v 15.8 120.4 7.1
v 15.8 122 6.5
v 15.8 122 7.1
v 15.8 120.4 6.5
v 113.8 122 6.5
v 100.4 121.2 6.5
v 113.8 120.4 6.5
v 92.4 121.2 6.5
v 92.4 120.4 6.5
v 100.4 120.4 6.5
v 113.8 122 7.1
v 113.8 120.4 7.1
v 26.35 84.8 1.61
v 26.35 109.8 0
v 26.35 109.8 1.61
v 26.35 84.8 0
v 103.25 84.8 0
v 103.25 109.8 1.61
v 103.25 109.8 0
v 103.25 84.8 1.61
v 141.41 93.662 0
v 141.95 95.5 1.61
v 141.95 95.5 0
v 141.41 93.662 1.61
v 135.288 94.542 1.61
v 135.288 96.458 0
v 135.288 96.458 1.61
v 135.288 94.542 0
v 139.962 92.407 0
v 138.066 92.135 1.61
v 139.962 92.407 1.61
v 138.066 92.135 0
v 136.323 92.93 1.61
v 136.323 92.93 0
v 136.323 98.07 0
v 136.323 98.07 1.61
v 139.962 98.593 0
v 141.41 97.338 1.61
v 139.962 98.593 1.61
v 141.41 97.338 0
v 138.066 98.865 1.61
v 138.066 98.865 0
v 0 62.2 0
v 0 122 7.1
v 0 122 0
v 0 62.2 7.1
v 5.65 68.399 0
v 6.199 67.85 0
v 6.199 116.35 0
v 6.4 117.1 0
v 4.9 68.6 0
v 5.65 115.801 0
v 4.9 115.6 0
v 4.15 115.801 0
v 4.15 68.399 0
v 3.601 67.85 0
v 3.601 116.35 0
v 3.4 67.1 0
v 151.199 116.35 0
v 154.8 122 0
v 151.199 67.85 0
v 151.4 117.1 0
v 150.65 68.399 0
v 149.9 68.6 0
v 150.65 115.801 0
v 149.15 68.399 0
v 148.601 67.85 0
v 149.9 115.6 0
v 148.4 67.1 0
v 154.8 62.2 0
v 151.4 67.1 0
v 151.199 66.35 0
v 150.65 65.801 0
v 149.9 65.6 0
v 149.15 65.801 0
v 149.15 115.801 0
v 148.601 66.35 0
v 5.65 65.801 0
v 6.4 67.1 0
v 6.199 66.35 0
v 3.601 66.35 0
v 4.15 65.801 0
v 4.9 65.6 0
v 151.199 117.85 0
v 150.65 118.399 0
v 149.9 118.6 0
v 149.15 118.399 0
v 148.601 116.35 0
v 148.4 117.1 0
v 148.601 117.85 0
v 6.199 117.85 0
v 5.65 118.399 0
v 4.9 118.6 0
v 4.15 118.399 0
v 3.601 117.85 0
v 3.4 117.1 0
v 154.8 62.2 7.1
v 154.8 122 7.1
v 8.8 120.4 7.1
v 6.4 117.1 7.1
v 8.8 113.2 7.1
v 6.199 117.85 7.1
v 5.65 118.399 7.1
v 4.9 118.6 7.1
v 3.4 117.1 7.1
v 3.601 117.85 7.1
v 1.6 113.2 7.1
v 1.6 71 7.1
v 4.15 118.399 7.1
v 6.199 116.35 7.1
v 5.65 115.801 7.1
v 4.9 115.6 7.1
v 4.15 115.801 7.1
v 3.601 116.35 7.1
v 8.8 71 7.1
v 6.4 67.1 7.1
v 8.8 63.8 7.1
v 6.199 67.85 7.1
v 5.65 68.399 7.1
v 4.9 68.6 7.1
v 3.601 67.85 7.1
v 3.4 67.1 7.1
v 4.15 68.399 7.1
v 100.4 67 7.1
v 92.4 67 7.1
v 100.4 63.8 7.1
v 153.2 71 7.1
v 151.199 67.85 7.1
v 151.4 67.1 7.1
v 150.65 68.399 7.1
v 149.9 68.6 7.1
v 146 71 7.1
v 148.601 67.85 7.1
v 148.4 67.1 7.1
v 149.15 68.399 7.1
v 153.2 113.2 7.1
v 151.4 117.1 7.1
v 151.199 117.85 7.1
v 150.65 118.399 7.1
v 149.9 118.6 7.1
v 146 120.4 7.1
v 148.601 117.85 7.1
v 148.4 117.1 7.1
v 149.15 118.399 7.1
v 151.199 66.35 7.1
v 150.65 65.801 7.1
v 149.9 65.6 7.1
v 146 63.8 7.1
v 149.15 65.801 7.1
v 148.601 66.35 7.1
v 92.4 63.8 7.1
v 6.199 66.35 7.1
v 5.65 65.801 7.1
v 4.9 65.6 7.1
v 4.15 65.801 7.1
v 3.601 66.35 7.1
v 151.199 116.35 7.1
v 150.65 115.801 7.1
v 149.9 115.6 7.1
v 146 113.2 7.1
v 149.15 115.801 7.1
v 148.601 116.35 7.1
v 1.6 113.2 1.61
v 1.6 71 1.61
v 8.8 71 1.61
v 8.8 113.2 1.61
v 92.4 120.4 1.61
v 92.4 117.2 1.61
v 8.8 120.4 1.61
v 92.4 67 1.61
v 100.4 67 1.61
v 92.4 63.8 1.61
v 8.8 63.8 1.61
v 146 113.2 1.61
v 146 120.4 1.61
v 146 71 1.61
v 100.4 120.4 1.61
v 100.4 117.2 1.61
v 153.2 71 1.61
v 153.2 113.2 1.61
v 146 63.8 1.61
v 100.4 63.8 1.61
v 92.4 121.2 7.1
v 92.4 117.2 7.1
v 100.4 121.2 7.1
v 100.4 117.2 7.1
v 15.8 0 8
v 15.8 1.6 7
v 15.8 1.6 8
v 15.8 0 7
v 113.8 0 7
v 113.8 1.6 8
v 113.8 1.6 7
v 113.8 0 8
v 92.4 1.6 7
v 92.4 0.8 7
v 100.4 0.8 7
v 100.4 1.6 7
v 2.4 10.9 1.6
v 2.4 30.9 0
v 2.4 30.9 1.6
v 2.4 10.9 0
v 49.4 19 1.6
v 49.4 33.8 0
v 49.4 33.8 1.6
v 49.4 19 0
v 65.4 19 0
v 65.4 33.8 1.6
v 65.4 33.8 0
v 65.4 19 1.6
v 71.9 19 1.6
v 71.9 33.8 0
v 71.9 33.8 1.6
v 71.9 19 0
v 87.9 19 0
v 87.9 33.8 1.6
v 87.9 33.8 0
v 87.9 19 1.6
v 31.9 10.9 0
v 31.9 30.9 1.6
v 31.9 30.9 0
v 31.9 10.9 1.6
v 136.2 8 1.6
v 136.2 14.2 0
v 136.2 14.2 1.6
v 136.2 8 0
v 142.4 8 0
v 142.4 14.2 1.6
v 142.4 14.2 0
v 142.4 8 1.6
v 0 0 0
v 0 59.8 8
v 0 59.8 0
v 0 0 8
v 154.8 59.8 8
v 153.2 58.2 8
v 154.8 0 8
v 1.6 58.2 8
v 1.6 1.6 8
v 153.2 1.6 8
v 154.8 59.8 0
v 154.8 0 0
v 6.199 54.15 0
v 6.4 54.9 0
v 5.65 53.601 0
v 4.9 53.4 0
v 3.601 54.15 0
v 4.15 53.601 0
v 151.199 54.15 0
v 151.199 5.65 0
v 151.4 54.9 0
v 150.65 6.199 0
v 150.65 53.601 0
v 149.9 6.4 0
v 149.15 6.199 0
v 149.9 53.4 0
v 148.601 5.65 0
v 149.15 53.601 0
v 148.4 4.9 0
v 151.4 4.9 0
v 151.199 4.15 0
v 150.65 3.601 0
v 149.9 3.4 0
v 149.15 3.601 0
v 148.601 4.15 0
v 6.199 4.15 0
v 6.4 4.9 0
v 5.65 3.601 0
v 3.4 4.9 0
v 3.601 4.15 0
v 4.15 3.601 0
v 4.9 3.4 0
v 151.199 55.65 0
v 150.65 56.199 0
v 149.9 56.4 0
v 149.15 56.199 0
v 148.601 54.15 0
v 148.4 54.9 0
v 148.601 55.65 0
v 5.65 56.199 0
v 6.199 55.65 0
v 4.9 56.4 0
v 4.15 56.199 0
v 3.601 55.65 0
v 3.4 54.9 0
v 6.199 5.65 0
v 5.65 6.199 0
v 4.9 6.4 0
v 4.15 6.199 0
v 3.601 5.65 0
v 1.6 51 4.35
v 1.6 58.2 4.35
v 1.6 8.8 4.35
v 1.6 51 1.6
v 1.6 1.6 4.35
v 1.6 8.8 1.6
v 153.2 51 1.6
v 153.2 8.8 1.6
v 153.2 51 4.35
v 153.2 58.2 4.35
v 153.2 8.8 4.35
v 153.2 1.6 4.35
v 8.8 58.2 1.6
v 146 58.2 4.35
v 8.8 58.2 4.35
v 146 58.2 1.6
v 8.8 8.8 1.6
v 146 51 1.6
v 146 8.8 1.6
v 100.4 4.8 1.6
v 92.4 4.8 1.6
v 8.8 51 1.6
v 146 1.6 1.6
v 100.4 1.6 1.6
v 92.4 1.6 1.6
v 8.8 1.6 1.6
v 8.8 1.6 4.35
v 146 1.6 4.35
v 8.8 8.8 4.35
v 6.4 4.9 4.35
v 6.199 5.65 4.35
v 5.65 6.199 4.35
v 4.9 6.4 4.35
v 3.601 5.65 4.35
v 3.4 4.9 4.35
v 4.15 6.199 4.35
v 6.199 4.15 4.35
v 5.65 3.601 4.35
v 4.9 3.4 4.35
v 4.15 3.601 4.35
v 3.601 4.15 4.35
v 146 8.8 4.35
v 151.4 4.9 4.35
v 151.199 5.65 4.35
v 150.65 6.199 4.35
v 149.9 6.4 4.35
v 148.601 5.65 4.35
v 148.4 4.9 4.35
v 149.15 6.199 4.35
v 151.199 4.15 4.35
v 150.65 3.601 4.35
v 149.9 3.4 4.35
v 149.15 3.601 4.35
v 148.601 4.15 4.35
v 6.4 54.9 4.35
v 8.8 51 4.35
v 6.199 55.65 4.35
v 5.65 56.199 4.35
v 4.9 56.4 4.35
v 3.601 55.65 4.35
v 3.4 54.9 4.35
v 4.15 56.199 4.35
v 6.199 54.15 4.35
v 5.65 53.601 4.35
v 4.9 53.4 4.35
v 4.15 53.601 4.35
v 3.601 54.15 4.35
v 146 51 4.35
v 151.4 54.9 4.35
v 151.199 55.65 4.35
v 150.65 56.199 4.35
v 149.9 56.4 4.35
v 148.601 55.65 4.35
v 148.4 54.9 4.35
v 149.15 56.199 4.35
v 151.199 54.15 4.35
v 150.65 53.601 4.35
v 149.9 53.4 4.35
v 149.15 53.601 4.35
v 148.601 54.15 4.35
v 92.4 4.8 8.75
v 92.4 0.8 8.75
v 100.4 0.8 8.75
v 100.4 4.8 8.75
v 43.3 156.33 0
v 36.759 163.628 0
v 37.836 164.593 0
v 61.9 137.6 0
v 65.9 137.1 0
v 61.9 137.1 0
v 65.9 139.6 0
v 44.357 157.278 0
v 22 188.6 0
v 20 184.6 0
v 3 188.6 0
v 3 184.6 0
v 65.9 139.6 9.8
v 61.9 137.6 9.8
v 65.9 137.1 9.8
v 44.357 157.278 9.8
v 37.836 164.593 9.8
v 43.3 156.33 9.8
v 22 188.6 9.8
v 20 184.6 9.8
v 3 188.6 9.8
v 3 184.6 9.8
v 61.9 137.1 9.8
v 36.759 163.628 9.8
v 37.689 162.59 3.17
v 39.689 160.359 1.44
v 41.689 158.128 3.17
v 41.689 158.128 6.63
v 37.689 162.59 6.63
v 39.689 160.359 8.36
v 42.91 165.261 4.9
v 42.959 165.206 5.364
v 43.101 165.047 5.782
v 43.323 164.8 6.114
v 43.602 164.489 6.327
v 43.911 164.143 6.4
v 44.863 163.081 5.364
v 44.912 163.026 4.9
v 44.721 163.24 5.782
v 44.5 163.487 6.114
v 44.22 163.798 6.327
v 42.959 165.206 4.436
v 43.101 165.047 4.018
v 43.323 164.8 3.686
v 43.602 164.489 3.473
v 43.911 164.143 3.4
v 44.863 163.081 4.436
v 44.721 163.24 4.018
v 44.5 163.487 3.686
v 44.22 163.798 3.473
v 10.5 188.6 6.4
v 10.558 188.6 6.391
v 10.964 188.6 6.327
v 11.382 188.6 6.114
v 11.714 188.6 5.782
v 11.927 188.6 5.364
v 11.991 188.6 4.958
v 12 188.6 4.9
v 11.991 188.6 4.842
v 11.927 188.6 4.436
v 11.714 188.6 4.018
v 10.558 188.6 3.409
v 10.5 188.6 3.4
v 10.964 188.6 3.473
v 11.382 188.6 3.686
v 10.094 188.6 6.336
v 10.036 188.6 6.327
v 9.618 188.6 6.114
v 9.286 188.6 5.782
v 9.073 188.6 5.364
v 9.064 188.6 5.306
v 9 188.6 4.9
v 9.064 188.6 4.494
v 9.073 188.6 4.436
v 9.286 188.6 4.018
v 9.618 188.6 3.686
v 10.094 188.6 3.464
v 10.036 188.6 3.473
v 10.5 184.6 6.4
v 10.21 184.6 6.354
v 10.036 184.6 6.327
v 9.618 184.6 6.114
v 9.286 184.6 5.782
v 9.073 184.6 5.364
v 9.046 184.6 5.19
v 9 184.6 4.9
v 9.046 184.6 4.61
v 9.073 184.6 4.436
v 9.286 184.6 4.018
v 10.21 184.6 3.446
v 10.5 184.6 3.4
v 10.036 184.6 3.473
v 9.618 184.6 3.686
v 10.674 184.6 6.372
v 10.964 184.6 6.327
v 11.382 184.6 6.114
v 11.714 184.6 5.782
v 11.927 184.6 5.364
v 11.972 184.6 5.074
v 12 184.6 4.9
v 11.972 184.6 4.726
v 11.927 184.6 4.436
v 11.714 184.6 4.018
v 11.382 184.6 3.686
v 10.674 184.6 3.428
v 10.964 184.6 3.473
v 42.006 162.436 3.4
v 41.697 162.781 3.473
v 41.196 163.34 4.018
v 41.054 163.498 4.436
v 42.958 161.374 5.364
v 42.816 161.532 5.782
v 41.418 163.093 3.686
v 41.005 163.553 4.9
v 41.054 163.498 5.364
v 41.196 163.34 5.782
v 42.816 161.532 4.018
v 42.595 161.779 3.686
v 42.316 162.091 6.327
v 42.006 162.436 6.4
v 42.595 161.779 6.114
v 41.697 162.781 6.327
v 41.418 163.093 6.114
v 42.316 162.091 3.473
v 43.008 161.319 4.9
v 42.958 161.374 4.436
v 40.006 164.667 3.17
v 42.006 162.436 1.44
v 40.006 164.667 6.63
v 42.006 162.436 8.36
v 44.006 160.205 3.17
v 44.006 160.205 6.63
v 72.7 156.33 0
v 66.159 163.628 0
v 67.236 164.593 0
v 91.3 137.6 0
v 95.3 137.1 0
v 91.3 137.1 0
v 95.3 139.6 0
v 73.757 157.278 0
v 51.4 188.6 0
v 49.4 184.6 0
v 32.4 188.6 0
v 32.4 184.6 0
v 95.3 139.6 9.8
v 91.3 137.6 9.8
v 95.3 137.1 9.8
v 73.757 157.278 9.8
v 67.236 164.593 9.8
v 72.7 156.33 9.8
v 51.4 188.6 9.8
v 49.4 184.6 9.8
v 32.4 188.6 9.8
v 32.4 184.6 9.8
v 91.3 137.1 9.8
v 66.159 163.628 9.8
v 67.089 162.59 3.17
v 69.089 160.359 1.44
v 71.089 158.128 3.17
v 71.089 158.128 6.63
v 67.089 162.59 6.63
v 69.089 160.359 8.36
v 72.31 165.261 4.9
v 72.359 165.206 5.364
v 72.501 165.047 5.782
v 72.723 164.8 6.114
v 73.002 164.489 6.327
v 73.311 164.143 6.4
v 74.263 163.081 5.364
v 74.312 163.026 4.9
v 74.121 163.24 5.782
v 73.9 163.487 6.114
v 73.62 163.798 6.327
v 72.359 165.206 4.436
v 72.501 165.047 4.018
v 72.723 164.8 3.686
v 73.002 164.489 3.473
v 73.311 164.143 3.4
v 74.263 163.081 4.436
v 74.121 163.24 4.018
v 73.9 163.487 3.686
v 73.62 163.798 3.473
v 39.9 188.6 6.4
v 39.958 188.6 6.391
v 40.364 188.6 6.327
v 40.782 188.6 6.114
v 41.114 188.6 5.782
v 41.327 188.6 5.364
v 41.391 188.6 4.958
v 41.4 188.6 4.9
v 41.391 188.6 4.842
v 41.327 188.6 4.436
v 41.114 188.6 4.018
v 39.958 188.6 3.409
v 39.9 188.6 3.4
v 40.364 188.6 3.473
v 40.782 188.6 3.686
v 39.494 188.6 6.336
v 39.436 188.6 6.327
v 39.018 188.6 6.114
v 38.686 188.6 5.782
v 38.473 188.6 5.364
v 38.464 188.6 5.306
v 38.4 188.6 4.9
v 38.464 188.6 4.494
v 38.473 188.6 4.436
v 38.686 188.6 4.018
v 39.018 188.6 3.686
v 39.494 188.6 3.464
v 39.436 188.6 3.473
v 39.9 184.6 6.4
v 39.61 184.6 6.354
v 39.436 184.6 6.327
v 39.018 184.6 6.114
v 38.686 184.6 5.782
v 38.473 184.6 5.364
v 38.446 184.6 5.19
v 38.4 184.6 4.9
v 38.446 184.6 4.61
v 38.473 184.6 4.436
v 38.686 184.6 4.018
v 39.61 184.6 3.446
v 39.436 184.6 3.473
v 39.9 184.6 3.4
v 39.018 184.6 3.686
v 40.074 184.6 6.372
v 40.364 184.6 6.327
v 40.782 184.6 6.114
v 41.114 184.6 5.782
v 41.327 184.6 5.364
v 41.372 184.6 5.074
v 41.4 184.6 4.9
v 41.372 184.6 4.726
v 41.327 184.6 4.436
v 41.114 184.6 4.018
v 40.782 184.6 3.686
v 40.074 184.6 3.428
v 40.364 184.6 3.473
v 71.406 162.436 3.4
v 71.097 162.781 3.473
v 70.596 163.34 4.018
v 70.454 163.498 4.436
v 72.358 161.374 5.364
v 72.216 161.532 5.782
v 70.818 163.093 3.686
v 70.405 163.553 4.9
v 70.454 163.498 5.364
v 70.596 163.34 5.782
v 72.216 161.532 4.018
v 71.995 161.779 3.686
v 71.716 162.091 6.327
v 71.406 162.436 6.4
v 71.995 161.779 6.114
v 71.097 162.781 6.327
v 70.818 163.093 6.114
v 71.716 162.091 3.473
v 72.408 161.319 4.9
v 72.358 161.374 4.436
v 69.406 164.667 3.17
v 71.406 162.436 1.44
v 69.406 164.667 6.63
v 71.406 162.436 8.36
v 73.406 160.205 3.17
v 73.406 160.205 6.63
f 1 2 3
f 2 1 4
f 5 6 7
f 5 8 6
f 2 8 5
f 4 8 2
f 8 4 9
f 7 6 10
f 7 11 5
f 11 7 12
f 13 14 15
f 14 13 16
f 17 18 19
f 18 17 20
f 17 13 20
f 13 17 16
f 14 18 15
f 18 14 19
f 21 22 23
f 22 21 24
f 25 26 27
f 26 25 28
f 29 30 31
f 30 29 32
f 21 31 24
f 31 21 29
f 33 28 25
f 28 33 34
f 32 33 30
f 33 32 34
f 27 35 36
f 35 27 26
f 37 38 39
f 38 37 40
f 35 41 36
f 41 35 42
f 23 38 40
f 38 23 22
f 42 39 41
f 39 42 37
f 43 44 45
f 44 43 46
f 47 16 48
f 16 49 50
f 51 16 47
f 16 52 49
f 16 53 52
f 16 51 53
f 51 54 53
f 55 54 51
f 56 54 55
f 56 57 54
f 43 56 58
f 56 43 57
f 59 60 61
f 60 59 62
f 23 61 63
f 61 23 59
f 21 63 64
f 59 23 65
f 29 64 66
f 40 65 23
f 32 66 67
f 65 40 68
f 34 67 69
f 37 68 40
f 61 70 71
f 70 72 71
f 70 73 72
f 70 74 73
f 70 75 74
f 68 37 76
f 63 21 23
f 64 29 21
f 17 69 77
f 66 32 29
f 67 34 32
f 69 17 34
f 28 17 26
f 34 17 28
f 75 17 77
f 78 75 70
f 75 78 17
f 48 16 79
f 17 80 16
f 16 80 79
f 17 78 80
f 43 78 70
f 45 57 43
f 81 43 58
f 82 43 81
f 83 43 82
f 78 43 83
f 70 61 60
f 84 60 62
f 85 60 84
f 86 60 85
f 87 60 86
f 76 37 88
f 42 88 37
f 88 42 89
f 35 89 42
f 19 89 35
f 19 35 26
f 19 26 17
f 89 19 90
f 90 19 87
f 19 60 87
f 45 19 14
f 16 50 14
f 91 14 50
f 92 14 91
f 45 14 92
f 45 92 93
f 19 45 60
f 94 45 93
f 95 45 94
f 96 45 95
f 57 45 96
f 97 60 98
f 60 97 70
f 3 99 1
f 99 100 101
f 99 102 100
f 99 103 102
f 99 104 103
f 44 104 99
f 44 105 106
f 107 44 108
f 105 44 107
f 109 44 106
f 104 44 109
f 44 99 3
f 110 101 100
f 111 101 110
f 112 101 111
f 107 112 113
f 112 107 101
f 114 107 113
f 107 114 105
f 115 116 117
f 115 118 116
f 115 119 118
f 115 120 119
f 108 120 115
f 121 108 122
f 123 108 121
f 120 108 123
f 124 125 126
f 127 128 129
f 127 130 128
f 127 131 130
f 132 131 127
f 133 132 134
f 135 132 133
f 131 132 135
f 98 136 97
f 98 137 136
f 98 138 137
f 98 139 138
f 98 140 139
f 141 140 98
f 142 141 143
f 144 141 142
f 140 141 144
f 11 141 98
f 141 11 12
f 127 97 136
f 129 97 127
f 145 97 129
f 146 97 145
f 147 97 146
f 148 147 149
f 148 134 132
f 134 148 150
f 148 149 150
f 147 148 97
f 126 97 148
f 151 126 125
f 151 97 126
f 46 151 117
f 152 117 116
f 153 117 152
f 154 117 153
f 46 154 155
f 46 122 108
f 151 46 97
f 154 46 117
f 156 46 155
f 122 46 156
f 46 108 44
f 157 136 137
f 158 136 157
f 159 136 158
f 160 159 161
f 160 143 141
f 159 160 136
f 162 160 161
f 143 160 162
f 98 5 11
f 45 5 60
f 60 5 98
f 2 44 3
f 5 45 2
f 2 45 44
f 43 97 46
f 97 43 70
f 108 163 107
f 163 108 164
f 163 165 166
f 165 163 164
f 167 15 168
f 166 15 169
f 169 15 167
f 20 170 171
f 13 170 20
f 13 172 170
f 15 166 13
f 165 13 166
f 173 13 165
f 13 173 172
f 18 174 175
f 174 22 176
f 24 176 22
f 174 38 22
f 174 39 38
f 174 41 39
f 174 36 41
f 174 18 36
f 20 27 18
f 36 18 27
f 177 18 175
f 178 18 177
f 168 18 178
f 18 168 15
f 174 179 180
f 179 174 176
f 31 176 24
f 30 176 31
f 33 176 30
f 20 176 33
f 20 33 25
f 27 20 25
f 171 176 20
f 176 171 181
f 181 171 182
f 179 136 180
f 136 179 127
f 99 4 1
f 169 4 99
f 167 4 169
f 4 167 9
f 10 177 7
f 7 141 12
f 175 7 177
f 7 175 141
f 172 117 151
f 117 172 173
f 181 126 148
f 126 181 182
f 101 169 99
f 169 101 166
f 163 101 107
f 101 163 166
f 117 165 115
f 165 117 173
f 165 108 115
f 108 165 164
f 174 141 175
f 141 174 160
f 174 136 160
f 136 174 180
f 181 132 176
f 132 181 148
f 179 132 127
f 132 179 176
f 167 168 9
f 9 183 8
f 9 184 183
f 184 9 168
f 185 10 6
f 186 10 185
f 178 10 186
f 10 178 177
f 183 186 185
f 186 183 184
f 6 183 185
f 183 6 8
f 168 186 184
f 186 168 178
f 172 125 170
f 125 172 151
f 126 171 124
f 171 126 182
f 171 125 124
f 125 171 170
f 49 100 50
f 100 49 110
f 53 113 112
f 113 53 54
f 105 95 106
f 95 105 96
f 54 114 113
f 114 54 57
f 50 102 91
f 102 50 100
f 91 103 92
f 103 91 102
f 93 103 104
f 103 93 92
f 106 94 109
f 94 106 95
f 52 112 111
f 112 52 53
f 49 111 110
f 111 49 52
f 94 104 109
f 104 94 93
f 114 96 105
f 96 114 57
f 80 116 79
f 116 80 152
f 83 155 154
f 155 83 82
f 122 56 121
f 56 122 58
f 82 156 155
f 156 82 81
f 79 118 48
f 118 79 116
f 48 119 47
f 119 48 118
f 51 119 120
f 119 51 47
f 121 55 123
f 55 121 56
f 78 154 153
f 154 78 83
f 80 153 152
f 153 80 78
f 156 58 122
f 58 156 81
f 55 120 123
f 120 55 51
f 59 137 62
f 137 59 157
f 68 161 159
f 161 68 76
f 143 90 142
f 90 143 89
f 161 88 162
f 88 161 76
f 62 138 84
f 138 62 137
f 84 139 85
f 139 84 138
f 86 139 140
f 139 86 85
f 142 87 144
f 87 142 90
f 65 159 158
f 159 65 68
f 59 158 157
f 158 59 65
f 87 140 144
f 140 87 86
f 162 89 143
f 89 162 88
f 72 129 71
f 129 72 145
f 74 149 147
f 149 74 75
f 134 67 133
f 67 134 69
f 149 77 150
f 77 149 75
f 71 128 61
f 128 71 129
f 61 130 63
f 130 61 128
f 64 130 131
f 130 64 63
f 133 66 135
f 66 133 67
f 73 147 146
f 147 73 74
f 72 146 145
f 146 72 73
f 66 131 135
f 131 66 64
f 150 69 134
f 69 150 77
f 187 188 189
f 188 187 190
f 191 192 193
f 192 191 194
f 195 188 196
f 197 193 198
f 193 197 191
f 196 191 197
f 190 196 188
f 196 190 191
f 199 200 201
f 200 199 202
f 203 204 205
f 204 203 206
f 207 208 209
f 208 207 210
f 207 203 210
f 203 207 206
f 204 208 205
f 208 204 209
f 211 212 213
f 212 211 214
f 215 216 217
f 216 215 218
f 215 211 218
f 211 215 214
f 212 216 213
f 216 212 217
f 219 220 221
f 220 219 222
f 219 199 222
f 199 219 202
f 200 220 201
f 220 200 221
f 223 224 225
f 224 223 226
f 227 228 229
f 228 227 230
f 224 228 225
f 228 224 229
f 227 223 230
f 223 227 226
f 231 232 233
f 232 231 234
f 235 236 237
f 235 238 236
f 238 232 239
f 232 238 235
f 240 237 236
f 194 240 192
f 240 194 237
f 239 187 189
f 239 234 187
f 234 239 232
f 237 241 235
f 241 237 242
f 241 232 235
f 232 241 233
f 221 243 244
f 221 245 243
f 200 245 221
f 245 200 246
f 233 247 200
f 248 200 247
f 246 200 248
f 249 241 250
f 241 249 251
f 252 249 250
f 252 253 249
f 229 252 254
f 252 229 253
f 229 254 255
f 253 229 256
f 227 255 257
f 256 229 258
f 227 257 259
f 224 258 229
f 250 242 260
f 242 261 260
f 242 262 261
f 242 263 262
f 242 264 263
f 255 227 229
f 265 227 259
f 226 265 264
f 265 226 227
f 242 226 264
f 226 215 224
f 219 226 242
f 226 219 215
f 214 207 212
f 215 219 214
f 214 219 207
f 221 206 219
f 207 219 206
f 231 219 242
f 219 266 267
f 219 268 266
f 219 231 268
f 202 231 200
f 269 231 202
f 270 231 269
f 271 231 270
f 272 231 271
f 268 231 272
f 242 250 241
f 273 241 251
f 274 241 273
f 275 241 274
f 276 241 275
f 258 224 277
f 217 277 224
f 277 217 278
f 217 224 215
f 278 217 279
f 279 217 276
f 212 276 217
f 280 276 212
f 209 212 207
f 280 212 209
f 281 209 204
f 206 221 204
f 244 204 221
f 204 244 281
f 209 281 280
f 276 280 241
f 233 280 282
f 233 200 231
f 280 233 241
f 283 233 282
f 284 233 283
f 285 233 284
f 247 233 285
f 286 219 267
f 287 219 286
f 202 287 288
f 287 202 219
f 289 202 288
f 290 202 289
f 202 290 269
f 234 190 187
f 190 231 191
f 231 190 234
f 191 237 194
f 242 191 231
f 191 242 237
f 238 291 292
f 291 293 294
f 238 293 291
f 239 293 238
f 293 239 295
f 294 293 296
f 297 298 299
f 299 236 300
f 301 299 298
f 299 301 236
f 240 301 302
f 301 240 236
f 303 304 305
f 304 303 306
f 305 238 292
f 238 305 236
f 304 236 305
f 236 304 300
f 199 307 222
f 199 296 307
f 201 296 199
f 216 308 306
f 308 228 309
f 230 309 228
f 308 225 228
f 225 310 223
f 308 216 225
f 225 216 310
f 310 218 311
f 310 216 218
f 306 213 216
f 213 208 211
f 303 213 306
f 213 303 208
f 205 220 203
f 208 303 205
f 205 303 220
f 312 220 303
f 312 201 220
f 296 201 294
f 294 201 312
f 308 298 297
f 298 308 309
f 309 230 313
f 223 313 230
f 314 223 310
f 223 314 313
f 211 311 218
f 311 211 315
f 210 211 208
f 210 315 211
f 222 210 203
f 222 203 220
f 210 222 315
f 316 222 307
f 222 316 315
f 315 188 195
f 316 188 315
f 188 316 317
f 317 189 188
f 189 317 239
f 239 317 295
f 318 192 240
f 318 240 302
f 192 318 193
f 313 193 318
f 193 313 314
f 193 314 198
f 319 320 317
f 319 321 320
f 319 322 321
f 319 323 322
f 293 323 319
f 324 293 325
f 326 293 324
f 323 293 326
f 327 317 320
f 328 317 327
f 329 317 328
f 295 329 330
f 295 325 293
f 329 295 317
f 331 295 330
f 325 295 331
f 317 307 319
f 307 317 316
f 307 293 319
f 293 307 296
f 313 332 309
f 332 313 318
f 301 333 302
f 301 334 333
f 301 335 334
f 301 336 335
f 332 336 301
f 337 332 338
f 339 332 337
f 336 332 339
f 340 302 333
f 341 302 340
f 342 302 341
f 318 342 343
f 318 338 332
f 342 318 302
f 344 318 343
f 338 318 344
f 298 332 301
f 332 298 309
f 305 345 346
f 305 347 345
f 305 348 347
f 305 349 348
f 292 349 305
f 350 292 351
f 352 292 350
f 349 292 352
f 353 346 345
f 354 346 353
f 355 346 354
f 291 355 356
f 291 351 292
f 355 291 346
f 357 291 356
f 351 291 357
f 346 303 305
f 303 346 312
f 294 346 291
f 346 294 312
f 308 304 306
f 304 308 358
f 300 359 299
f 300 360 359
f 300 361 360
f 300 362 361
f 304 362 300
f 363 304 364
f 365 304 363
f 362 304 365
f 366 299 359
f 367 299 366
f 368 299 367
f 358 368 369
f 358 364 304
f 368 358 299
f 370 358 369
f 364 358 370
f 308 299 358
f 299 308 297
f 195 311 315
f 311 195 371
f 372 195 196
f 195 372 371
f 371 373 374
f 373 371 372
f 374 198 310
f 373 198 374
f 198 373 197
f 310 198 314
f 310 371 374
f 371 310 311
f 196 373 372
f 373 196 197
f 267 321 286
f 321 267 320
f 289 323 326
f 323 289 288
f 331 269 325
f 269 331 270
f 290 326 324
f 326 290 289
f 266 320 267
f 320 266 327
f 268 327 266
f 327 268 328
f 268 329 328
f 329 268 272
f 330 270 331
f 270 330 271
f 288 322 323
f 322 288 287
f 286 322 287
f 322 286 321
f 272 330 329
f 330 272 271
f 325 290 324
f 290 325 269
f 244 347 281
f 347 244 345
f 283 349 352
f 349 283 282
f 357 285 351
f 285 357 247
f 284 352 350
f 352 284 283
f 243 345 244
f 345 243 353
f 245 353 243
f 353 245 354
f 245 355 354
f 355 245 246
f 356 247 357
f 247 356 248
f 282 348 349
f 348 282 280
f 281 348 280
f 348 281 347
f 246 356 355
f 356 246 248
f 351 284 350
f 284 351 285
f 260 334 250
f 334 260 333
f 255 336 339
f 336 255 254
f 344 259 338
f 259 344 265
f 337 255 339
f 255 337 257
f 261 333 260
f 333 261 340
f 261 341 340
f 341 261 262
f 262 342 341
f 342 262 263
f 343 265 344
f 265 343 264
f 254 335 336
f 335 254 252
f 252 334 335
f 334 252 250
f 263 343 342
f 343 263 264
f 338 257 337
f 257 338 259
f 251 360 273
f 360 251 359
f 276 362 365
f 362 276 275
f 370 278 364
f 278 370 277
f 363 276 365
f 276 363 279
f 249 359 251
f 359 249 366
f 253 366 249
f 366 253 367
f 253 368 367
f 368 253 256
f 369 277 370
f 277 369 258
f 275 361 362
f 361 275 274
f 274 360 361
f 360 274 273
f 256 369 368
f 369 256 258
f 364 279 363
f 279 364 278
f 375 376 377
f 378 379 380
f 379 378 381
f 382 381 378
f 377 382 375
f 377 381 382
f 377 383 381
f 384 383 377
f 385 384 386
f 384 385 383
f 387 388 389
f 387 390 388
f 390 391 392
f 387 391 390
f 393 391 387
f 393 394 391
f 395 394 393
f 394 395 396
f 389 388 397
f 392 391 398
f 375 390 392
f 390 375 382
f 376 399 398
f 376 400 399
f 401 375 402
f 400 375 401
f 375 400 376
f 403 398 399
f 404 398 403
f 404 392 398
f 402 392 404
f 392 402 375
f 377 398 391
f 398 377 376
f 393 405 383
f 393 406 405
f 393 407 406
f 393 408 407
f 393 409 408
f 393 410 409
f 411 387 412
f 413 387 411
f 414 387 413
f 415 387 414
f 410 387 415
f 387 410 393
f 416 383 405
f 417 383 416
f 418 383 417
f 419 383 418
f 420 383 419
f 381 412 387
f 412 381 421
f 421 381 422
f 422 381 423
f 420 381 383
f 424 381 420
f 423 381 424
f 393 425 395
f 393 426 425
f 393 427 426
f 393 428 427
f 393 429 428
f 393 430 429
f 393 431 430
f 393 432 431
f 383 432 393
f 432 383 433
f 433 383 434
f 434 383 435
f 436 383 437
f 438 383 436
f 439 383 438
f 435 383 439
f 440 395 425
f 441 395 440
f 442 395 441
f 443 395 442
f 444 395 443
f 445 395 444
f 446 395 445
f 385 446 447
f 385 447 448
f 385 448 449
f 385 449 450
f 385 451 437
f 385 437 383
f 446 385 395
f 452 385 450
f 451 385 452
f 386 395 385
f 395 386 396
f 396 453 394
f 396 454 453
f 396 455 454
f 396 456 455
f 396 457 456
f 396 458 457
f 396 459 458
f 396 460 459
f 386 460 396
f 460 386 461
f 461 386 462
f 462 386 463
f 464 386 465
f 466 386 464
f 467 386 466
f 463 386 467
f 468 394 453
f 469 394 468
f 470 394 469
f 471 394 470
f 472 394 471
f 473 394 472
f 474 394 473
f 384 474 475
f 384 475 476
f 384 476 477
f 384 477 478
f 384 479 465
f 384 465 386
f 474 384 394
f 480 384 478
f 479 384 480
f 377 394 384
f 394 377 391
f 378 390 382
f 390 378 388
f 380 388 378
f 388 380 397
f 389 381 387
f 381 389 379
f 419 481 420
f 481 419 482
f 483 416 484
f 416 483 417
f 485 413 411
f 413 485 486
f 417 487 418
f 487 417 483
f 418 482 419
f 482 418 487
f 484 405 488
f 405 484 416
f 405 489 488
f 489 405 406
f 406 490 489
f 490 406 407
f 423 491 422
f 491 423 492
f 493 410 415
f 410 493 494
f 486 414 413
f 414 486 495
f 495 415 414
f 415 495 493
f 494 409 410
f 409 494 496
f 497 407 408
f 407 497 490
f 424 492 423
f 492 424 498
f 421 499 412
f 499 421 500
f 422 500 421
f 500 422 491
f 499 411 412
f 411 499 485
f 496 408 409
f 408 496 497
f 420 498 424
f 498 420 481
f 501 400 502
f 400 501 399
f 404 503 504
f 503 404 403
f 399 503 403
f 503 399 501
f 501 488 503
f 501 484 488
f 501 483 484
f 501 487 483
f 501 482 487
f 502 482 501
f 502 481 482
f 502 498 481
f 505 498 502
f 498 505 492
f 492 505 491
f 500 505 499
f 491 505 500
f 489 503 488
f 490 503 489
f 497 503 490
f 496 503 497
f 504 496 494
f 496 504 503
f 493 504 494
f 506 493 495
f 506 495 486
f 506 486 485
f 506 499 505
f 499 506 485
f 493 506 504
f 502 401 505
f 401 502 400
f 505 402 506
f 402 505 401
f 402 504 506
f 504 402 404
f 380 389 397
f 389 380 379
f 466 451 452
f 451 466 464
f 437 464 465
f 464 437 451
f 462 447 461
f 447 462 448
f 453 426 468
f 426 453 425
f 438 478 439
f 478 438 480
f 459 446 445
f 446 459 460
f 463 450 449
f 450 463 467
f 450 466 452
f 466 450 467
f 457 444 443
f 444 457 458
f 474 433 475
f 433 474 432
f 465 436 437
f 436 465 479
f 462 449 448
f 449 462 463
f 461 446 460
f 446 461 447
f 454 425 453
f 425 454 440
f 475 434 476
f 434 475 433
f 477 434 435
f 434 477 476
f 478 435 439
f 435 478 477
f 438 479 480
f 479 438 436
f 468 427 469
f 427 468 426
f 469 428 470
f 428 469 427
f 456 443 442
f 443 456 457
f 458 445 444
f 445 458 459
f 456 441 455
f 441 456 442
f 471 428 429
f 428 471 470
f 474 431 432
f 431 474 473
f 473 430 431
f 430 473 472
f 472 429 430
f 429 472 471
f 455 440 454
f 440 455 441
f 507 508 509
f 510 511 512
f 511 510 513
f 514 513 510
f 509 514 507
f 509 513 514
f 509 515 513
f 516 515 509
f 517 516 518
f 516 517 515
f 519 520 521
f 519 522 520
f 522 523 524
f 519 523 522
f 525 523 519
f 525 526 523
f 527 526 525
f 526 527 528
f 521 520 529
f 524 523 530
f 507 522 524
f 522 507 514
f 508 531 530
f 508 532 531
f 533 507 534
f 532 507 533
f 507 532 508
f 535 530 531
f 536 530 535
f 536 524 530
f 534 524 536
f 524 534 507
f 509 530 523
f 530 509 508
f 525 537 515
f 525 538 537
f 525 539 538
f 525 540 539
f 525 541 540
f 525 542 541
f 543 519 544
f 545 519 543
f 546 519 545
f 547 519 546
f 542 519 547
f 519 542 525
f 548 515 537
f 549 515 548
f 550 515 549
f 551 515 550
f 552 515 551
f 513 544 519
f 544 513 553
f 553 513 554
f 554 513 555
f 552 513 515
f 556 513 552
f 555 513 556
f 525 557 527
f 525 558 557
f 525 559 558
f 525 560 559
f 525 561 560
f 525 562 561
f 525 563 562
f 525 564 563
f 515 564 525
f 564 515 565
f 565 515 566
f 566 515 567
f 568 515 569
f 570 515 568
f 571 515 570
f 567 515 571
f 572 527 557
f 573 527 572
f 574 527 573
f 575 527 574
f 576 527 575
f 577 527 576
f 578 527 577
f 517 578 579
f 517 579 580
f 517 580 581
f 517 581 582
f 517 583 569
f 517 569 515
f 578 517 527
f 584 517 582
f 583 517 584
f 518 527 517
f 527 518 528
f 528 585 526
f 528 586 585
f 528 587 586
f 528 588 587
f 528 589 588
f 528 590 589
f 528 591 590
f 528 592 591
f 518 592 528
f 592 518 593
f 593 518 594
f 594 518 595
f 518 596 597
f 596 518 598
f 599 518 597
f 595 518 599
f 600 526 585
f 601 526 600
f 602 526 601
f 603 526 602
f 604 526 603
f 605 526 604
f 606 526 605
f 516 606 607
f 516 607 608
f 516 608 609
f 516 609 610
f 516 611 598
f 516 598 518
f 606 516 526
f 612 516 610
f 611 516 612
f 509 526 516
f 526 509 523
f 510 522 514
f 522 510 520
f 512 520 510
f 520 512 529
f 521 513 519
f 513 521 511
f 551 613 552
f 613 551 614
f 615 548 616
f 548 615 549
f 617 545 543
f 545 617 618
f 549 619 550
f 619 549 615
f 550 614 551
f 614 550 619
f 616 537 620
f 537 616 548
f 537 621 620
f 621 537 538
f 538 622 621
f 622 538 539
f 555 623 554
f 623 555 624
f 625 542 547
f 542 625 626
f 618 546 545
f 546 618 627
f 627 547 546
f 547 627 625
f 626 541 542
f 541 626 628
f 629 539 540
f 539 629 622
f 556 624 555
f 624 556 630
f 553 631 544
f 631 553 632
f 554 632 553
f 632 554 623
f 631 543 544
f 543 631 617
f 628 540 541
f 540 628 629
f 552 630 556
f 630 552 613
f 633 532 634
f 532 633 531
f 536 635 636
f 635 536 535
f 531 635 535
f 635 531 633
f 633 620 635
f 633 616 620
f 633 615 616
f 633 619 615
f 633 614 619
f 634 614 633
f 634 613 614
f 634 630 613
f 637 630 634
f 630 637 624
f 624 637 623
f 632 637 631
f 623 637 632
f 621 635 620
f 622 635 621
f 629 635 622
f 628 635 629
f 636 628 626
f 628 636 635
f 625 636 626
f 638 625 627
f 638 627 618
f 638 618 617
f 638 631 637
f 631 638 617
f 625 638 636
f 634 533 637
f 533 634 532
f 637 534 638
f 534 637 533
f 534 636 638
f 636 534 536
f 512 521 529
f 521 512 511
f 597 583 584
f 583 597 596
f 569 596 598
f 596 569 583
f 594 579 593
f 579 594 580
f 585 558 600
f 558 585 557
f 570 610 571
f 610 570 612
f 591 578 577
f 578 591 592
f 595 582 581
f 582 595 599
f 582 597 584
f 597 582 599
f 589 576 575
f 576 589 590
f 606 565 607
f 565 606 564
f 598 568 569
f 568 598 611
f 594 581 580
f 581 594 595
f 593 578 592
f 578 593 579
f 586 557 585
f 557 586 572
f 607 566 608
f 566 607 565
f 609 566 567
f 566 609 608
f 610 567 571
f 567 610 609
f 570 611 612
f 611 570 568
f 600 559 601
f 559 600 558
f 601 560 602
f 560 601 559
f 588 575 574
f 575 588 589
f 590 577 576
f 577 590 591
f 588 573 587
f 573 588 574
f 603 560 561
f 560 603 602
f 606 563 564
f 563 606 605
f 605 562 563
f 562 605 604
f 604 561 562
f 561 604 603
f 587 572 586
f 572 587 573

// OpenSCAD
// Alunar LCD Display case
// based on the PanelOne case v0.1
// 
// This version by Steve Luzynski
// GNU GPL v3
// January 2017

// For more information on the PanelOne case:
// http://blog.think3dprint3d.com/2014/04/OpenSCAD-PanelOne-case-design.html
//
//
// by Tony Lock
// GNU GPL v3
// Apr 2014


clearance = 0.8;
wall_width = 1.6; 
layer_height = 0.2;

m3_diameter = 3.6;
m3_nut_diameter = 5.3;
m3_nut_diameter_bigger=((m3_nut_diameter / 2) / cos (180 / 6))*2;

// LCD Module
lcd_scrn_x = 76.9;
lcd_scrn_y = 25;
lcd_scrn_z = 7;

lcd_board_x = 98;
lcd_board_y = 60;
lcd_board_z = 1.6;

lcd_hole_d=3;
lcd_hole_offset=(lcd_hole_d/2)+1;

lcd_pl_offset_x=13.4;
lcd_pl_offset_y=-7.7;

//board edge to center of first connector hole
lcd_connect_x=22.8;
lcd_connect_y=50.4;

//Main circuit board
pl_x=150;
pl_y=55;
pl_z=1.6; 

pl_hole_d = 3;
pl_hole_offset=(pl_hole_d/2)+1;

pl_mounting_hole_dia=2.9;
pl_mounting_hole1_x=2.5;
pl_mounting_hole2_x=147.5;
pl_mounting_hole1_y=2.5; 
pl_mounting_hole2_y=2.5;
pl_mounting_hole3_x=2.5;
pl_mounting_hole4_x=147.5;
pl_mounting_hole3_y=52.2; 
pl_mounting_hole4_y=52.2;

//rotary encoder
click_encoder_x=13.5;
click_encoder_y=12.9;
click_encoder_z=6.7;
click_encoder_shaft_dia=6+clearance;
click_encoder_shaft_h=14.7;
click_encoder_knob_dia=25;
click_encoder_offset_x=136.15;
click_encoder_offset_y=24.1;

// reset button
reset_button_x=6.2;
reset_button_y=6.2;
reset_button_z=7.4;
reset_button_offset_x=133.8;
reset_button_offset_y=5.6;
reset_button_offset_z=-reset_button_z;

//headers
//lcd connection header
lcd_h_x=(16*2.54)+2.54;
lcd_h_y=2.54;
lcd_h_z=3; 
lcd_h_offset_x=lcd_connect_x; 
lcd_h_offset_y=lcd_connect_y;
lcd_h_offset_z=pl_z;

//IDC headers, use the clearance required for the plug
//these are much bigger on z than the actual headers for clearance
idc_h_x=16; 
idc_h_y=14+clearance;
idc_h_z=pl_z+click_encoder_z;
idc1_offset_x=47; 
idc1_offset_y=16.6; 
idc1_offset_z=-idc_h_z;
idc2_offset_x=69.5; 
idc2_offset_y=16.6;
idc2_offset_z=idc1_offset_z;

//SD card slot
SD_slot_x=29.5; 
SD_slot_y=20;
SD_slot_z=4;
SD_slot_offset_x=0;
SD_slot_offset_y=8.5;
SD_slot_offset_z=-SD_slot_z;

//case variables
shell_split_z = pl_z+SD_slot_z; 
shell_width=wall_width+clearance;
shell_top = pl_z+click_encoder_z+2;

//mount variables
mount_x=(lcd_hole_offset+shell_width)*2;
mount_z=4;
mount_a=19;
mount_b=49;
mount_c=62.9;
mount_angle=41.87;

module LCD_assembly() {
    translate([lcd_pl_offset_x,lcd_pl_offset_y,lcd_h_offset_z+lcd_h_z])
        lcd();
        pl_board();
   //lcd connection header
    color("black")
        translate([lcd_h_offset_x,lcd_h_offset_y,lcd_h_offset_z])
            cube([lcd_h_x,lcd_h_y,lcd_h_z]);
}

//LCD screen
module lcd() {
    difference(){
        union(){
            color("OliveDrab")
                translate([0,0,0])
                    cube([lcd_board_x,lcd_board_y,lcd_board_z]);
            color("DarkSlateGray")
                translate([(lcd_board_x-lcd_scrn_x)/2,(lcd_board_y-lcd_scrn_y)/2,lcd_board_z])
                    cube([lcd_scrn_x,lcd_scrn_y,lcd_scrn_z]);
        }
        for(i=[lcd_hole_offset,lcd_board_x-lcd_hole_offset]){
            for(j=[lcd_hole_offset,lcd_board_y-lcd_hole_offset]){
                translate([i,j,lcd_board_z])
                    cylinder(r=lcd_hole_d/2,h=lcd_board_z+3,$fn=12,center=true);
            }
        }
    }
}



//base circuit board simplified
module pl_board() {
    difference(){
        union(){
            color("lightgreen")cube([pl_x,pl_y,pl_z]);
            //click encoder
            color("darkgrey"){
                translate([click_encoder_offset_x,click_encoder_offset_y,pl_z+(click_encoder_z)/2])
                    cube([click_encoder_x,click_encoder_y,click_encoder_z],center=true);
                translate([click_encoder_offset_x,click_encoder_offset_y,pl_z+click_encoder_z+(click_encoder_shaft_h)/2])
                    cylinder(r=click_encoder_shaft_dia/2,h=click_encoder_shaft_h,center=true);
            }        
        }

        //mounting holes

        for(i=[pl_hole_offset,pl_x-pl_hole_offset]){
            for(j=[pl_hole_offset,pl_y-pl_hole_offset]){
                translate([i,j,pl_z])
                    cylinder(r=pl_hole_d/2,h=pl_z+3,$fn=12,center=true);
            }
        }
    }
    //SD board 
    color("lightblue")    
        translate([SD_slot_offset_x,SD_slot_offset_y,SD_slot_offset_z]) 
            cube([SD_slot_x,SD_slot_y,SD_slot_z]);
   //IDC headers
    color("darkgrey"){
        translate([idc1_offset_x,idc1_offset_y,idc1_offset_z])
            cube([idc_h_x,idc_h_y,idc_h_z]);
        translate([idc2_offset_x,idc2_offset_y,idc2_offset_z])
            cube([idc_h_x,idc_h_y,idc_h_z]);
    }
    // reset button
    color("orange")
        translate([reset_button_offset_x,reset_button_offset_y,reset_button_offset_z])
            cube([reset_button_x,reset_button_y,reset_button_z]);
}


module back() {
    side=8; //for the supports
    difference(){
        union(){
            difference(){
                translate([-shell_width,-shell_width,-shell_width])
                    cube([pl_x+shell_width*2,pl_y+shell_width*2,shell_split_z+shell_width]);
                translate([-clearance,-clearance,-clearance])
                    cube([pl_x+clearance*2,pl_y+clearance*2,shell_split_z+clearance+0.01]);
                LCD_assembly();
            }
            //corner supports
            for(i=[-wall_width,pl_y-side+wall_width]){
                translate([-wall_width,i,-shell_width])
                    cube([side,side,4.35]);
                translate([pl_x-side+wall_width,i,-shell_width])
                    cube([side,side,4.35]);
            }
            //additional support
            translate([lcd_board_x-side,-wall_width,-shell_width])
                cube([side,side/2,8.75]);
        }
        case_screw_holes(0);
    }
}

module front() {
    side=8; //for the supports
    difference(){
        union(){
            difference(){
                translate([-shell_width,-shell_width,shell_split_z])
                    cube([pl_x+shell_width*2,pl_y+shell_width*2,shell_top-shell_split_z +shell_width]);
                translate([-clearance,-clearance,shell_split_z-0.01])
                    cube([pl_x+clearance*2,pl_y+clearance*2,shell_top-shell_split_z +clearance]);
                LCD_assembly();
            }
            //corner supports
            for(i=[-wall_width,pl_x-side+wall_width])
                for(j=[-wall_width,pl_y-side+wall_width]){
                    translate([i,j,shell_split_z])
                        cube([side,side,shell_top-shell_split_z+wall_width]);
                }
            //additional supports
            for(i=[-wall_width,pl_y-side/2+wall_width]){
                translate([lcd_board_x-side,i,shell_split_z])
                cube([side,side/2,shell_top-shell_split_z+wall_width]);
            }
        }
        case_screw_holes(shell_top+shell_width);
    }
}


module mount()
{
	difference(){
		union(){
			linear_extrude(height=mount_x)
				polygon([[mount_c-mount_a,-mount_z],
						[mount_c-mount_a-mount_z,-mount_z],
						[mount_c-mount_a-mount_z,-mount_z/2],
						[-mount_z/2,mount_b-mount_z],
						[-mount_a,mount_b-mount_z],
						[-mount_a,mount_b],
						[0,mount_b],
						[mount_c-mount_a,0]]);

			for(i=[(lcd_hole_offset-pl_mounting_hole2_y)/2,(pl_mounting_hole2_y-lcd_hole_offset)/2]){
				translate([21.30,16.73,mount_x])
					rotate([0,90,mount_angle])
						translate([0,i,0])
							cube([mount_x,mount_x,1.6]);
			}
		}

		//shave off a bit of the mount brackets
		translate([mount_c-mount_a-mount_z-3,-mount_z-8.5,-2])
				cube([10,10,mount_x+4]);

		//case holes
		for(i=[(lcd_hole_offset-pl_mounting_hole2_y)/2,(pl_mounting_hole2_y-lcd_hole_offset)/2])
		translate([17.4,20.5,mount_x/2])
			rotate([0,90,mount_angle])
				translate([0,i,0]){
					cylinder(r=lcd_hole_d/2, h=mount_z*4, $fn=20);
					cylinder(r=m3_nut_diameter_bigger/2+layer_height*2, h=3.5, $fn=6);
				}

		//frame mounting holes
		translate([-11.5,35,mount_x/2])
			rotate([0,90,90])
				cylinder(r=lcd_hole_d/2, h=mount_z*4, $fn=20);
	}
}


module case_screw_holes(z_height=0, dia=lcd_hole_d) {
    
    for(i=[pl_hole_offset,pl_x-pl_hole_offset]){
        for(j=[pl_hole_offset,pl_y-pl_hole_offset]){
                translate([i,j,z_height])
                    cylinder(r=dia/2,h=shell_width*2+30,$fn=12,center=true);
            }
        }
}

//LCD_assembly();
//lcd();
//pl_board();
//front();
//back();
//mount();

translate([shell_width,pl_y*2+shell_width*4,shell_top+shell_width])
    rotate([180,0,0])
        color("blue") front();

translate([shell_width,shell_width,shell_width])
    color("purple")back();

translate([shell_width+mount_x*2,pl_y*2+shell_width*4+20,0])
        mount();
translate([shell_width+mount_x*5,pl_y*2+shell_width*4+20,0])
        mount();
